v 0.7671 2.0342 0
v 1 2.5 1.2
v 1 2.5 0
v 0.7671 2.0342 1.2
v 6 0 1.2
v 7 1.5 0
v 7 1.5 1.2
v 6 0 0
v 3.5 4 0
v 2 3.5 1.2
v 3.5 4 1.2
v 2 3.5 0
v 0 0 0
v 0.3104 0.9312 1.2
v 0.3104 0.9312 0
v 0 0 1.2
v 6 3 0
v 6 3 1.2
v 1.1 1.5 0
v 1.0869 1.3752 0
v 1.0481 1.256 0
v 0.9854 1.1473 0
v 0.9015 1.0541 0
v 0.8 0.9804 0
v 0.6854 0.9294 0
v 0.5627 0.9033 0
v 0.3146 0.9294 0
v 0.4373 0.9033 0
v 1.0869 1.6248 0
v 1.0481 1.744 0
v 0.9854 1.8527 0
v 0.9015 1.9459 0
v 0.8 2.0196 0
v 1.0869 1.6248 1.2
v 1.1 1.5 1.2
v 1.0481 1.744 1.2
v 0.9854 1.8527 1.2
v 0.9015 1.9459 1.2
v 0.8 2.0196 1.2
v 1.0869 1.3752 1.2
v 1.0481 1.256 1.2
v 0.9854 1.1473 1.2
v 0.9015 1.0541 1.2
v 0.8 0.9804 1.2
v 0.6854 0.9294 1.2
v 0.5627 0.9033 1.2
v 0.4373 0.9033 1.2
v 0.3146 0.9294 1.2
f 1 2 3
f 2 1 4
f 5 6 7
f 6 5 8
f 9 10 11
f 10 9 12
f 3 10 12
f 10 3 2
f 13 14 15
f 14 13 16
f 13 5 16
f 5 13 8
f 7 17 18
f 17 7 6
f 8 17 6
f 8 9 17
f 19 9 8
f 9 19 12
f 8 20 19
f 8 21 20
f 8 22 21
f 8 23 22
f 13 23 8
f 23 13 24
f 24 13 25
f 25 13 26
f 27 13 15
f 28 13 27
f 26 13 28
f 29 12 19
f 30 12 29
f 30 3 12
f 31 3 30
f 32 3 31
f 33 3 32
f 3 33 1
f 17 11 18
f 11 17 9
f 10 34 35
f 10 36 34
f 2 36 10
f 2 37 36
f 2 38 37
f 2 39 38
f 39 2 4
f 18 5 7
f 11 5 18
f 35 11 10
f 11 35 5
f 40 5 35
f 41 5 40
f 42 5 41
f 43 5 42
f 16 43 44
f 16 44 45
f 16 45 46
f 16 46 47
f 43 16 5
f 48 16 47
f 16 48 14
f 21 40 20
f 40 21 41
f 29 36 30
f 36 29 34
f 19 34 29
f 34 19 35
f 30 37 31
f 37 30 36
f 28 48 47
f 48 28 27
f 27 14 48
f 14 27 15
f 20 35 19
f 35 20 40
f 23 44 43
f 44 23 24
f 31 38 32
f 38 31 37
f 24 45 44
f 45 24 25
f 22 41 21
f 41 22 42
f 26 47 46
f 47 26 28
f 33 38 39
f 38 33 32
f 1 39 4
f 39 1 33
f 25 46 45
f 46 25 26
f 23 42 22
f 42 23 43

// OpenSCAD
// Locking Key Module (Corrected)
module locking_key() {
    difference() {
        // Main body with asymmetrical profile
        linear_extrude(height = 1.2)  // thinner profile
        polygon(points=[
            [0, 0],         // bottom left
            [6, 0],         // bottom right
            [7, 1.5],       // angled tip
            [6, 3],         // top right
            [3.5, 4],       // top mid
            [2, 3.5],       // curve start
            [1, 2.5],       // curve mid
            [0.5, 1.5]      // back to left
        ]);

        // Subtract a small circle to form the rounded tab
        translate([0.5, 1.5, -0.1])
        cylinder(h = 1.4, r = 0.6, $fn=30);
    }
}

// Render the locking key
locking_key();
